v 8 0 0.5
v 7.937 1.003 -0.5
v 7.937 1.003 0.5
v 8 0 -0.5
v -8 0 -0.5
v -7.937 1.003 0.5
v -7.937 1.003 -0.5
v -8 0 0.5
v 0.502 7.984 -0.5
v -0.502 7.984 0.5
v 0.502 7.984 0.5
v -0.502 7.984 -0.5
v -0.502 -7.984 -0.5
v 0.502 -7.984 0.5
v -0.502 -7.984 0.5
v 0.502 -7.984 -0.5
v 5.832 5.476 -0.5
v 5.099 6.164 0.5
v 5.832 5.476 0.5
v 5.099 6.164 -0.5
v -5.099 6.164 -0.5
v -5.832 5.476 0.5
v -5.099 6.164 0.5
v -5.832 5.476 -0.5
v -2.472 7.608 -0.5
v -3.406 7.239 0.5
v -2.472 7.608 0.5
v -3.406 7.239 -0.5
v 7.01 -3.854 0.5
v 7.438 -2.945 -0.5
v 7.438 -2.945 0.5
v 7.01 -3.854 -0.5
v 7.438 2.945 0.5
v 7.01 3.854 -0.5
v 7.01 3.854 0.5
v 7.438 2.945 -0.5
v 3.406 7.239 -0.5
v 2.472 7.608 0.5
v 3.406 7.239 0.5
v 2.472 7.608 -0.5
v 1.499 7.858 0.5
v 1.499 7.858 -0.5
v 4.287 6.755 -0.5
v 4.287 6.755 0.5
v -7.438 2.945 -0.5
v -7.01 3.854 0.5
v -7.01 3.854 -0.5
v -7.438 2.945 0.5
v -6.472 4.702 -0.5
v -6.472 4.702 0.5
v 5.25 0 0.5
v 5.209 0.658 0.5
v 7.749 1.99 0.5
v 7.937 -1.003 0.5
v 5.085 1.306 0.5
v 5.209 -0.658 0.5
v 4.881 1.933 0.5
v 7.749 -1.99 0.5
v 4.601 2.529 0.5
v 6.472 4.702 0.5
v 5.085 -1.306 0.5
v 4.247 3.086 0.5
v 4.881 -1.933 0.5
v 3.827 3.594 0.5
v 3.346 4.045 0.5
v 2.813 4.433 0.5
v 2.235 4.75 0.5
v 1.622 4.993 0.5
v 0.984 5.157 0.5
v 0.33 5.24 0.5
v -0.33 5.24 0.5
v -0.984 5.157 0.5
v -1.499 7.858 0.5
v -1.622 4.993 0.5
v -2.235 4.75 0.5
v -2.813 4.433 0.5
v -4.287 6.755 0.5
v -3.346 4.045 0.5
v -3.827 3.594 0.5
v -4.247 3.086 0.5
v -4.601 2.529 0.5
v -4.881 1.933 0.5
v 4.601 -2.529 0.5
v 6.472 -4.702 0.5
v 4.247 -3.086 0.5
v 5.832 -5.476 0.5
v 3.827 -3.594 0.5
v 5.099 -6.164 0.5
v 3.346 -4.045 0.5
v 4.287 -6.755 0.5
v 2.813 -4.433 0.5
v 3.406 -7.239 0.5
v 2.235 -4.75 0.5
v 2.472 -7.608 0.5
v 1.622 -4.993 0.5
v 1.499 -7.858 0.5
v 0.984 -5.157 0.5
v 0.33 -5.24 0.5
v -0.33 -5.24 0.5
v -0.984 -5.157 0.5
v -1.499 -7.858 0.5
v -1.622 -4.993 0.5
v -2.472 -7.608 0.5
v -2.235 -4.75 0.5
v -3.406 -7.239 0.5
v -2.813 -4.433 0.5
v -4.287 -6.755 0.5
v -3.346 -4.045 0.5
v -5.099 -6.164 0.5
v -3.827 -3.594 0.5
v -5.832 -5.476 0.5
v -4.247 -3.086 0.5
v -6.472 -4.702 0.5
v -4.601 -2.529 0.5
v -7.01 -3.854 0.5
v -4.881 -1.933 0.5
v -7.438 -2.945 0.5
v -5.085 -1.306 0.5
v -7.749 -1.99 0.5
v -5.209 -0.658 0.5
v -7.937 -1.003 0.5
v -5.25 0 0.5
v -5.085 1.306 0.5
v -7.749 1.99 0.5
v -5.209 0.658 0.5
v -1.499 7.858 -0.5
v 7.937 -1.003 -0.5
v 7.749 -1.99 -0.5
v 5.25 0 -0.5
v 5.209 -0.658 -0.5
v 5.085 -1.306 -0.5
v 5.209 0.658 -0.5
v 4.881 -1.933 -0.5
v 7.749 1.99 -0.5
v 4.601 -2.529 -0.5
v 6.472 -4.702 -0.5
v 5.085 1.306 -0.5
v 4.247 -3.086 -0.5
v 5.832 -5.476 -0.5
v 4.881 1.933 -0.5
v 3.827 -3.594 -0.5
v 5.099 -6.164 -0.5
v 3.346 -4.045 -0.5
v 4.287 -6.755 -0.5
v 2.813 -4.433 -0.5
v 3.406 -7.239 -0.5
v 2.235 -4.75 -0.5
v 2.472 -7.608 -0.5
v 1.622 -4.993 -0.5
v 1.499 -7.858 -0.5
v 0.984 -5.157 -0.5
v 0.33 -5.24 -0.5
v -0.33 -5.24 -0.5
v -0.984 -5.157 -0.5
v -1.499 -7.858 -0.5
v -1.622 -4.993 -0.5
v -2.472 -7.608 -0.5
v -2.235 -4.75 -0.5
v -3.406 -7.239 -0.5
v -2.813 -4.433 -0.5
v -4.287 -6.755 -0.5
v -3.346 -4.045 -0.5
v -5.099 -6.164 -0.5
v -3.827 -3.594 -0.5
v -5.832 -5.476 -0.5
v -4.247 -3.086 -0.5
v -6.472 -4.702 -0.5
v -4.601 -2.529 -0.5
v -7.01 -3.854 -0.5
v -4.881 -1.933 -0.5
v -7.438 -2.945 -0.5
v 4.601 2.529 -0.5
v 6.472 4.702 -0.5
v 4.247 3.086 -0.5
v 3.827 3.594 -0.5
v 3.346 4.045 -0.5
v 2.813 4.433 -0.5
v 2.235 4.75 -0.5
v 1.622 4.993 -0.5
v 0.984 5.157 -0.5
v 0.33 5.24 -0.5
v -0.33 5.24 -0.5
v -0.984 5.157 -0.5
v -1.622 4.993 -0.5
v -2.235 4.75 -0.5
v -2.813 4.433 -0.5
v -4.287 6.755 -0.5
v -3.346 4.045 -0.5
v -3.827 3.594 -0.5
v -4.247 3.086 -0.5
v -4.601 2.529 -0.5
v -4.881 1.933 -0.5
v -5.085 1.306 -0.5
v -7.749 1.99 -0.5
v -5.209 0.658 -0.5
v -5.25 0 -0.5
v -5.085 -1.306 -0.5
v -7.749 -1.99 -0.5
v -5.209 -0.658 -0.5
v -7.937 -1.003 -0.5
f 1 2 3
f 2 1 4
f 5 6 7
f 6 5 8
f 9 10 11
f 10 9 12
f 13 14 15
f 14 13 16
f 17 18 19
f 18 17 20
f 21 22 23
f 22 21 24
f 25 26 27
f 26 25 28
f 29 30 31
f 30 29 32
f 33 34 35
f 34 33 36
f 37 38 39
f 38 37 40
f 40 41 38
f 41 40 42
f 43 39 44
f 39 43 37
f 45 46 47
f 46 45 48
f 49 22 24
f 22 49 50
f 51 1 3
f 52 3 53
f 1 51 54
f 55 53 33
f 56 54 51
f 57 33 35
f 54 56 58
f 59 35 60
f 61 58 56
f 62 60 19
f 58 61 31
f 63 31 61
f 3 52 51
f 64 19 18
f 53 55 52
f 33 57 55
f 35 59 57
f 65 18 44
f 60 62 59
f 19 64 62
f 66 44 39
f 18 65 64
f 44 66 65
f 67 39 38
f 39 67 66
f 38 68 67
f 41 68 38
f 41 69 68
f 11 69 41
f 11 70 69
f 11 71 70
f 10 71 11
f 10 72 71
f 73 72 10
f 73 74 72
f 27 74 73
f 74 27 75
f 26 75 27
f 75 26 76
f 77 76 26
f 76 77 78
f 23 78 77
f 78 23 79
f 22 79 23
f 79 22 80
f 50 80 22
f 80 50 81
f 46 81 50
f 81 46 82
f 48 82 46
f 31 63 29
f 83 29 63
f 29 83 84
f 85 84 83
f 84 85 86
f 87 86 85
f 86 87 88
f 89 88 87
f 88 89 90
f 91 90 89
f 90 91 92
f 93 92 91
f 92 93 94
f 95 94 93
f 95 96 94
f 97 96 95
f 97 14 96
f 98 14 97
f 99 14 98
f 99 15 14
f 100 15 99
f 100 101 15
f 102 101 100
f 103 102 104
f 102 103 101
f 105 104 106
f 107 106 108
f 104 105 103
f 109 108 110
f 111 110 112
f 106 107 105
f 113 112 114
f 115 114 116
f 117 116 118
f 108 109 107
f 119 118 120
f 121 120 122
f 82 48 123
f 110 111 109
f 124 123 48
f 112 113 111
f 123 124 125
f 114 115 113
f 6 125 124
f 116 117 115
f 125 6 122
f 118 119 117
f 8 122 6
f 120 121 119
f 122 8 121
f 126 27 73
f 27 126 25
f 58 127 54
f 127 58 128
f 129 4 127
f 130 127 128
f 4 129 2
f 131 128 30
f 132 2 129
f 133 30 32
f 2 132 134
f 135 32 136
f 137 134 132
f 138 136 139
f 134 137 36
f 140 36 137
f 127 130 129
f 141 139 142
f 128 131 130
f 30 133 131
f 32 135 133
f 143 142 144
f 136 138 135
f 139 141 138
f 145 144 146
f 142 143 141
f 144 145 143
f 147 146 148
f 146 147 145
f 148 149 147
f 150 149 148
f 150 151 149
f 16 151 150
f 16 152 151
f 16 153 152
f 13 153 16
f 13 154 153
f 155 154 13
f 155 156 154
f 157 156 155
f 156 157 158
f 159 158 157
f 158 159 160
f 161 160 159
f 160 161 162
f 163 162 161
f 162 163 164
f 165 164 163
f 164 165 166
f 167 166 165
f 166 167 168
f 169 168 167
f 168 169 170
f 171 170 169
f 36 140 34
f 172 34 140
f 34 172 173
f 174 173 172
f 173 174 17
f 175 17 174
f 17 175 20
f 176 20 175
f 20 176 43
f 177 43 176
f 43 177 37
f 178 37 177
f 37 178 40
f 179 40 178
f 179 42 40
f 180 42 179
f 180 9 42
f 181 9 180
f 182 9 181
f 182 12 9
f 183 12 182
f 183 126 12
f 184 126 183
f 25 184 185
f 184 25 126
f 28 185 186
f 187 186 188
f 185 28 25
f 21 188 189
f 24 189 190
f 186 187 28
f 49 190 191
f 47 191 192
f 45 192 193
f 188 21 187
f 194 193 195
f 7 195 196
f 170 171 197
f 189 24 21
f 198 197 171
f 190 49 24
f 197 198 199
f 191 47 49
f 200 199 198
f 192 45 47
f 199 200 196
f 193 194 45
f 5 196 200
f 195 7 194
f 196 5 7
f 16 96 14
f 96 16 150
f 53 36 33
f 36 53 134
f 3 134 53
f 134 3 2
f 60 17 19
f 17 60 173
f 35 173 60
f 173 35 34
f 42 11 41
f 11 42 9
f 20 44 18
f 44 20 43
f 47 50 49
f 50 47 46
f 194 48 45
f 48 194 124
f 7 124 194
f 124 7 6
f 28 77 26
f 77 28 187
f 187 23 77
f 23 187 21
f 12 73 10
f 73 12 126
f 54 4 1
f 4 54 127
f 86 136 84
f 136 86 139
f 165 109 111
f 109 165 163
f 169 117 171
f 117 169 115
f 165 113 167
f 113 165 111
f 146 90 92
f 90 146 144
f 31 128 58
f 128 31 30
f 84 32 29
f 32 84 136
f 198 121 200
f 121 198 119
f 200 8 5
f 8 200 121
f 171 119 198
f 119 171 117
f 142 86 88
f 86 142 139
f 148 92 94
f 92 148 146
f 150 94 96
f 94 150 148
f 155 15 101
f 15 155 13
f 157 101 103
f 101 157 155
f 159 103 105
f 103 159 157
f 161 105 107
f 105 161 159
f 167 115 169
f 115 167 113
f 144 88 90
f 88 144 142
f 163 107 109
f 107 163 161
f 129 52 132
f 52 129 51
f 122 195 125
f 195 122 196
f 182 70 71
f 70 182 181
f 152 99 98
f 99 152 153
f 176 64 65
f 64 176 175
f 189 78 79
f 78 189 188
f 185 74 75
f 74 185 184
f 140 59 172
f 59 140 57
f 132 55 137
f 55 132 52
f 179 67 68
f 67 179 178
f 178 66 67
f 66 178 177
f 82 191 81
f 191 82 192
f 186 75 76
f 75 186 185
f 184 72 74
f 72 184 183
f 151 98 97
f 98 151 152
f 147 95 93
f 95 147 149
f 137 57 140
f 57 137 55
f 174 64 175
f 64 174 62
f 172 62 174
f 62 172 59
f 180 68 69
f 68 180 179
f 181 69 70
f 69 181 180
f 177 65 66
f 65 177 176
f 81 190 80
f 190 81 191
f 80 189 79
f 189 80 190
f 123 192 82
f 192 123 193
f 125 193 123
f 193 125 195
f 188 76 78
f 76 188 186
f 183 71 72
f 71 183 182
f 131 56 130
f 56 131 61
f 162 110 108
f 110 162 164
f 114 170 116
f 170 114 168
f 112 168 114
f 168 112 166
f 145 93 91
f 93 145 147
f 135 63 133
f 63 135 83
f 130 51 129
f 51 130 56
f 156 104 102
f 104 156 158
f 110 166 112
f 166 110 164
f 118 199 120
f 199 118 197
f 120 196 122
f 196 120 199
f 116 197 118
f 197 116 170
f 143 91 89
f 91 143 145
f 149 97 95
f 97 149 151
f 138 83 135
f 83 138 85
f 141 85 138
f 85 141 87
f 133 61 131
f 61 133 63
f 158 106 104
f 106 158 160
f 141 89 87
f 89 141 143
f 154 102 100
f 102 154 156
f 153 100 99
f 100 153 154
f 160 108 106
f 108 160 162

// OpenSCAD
$fn = 50;


difference() {
	union() {
		translate(v = [0, 0, -0.5000000000]) {
			cylinder(h = 1, r = 8.0000000000);
		}
	}
	union() {
		translate(v = [0, 0, -100.0000000000]) {
			cylinder(h = 200, r = 5.2500000000);
		}
	}
}
